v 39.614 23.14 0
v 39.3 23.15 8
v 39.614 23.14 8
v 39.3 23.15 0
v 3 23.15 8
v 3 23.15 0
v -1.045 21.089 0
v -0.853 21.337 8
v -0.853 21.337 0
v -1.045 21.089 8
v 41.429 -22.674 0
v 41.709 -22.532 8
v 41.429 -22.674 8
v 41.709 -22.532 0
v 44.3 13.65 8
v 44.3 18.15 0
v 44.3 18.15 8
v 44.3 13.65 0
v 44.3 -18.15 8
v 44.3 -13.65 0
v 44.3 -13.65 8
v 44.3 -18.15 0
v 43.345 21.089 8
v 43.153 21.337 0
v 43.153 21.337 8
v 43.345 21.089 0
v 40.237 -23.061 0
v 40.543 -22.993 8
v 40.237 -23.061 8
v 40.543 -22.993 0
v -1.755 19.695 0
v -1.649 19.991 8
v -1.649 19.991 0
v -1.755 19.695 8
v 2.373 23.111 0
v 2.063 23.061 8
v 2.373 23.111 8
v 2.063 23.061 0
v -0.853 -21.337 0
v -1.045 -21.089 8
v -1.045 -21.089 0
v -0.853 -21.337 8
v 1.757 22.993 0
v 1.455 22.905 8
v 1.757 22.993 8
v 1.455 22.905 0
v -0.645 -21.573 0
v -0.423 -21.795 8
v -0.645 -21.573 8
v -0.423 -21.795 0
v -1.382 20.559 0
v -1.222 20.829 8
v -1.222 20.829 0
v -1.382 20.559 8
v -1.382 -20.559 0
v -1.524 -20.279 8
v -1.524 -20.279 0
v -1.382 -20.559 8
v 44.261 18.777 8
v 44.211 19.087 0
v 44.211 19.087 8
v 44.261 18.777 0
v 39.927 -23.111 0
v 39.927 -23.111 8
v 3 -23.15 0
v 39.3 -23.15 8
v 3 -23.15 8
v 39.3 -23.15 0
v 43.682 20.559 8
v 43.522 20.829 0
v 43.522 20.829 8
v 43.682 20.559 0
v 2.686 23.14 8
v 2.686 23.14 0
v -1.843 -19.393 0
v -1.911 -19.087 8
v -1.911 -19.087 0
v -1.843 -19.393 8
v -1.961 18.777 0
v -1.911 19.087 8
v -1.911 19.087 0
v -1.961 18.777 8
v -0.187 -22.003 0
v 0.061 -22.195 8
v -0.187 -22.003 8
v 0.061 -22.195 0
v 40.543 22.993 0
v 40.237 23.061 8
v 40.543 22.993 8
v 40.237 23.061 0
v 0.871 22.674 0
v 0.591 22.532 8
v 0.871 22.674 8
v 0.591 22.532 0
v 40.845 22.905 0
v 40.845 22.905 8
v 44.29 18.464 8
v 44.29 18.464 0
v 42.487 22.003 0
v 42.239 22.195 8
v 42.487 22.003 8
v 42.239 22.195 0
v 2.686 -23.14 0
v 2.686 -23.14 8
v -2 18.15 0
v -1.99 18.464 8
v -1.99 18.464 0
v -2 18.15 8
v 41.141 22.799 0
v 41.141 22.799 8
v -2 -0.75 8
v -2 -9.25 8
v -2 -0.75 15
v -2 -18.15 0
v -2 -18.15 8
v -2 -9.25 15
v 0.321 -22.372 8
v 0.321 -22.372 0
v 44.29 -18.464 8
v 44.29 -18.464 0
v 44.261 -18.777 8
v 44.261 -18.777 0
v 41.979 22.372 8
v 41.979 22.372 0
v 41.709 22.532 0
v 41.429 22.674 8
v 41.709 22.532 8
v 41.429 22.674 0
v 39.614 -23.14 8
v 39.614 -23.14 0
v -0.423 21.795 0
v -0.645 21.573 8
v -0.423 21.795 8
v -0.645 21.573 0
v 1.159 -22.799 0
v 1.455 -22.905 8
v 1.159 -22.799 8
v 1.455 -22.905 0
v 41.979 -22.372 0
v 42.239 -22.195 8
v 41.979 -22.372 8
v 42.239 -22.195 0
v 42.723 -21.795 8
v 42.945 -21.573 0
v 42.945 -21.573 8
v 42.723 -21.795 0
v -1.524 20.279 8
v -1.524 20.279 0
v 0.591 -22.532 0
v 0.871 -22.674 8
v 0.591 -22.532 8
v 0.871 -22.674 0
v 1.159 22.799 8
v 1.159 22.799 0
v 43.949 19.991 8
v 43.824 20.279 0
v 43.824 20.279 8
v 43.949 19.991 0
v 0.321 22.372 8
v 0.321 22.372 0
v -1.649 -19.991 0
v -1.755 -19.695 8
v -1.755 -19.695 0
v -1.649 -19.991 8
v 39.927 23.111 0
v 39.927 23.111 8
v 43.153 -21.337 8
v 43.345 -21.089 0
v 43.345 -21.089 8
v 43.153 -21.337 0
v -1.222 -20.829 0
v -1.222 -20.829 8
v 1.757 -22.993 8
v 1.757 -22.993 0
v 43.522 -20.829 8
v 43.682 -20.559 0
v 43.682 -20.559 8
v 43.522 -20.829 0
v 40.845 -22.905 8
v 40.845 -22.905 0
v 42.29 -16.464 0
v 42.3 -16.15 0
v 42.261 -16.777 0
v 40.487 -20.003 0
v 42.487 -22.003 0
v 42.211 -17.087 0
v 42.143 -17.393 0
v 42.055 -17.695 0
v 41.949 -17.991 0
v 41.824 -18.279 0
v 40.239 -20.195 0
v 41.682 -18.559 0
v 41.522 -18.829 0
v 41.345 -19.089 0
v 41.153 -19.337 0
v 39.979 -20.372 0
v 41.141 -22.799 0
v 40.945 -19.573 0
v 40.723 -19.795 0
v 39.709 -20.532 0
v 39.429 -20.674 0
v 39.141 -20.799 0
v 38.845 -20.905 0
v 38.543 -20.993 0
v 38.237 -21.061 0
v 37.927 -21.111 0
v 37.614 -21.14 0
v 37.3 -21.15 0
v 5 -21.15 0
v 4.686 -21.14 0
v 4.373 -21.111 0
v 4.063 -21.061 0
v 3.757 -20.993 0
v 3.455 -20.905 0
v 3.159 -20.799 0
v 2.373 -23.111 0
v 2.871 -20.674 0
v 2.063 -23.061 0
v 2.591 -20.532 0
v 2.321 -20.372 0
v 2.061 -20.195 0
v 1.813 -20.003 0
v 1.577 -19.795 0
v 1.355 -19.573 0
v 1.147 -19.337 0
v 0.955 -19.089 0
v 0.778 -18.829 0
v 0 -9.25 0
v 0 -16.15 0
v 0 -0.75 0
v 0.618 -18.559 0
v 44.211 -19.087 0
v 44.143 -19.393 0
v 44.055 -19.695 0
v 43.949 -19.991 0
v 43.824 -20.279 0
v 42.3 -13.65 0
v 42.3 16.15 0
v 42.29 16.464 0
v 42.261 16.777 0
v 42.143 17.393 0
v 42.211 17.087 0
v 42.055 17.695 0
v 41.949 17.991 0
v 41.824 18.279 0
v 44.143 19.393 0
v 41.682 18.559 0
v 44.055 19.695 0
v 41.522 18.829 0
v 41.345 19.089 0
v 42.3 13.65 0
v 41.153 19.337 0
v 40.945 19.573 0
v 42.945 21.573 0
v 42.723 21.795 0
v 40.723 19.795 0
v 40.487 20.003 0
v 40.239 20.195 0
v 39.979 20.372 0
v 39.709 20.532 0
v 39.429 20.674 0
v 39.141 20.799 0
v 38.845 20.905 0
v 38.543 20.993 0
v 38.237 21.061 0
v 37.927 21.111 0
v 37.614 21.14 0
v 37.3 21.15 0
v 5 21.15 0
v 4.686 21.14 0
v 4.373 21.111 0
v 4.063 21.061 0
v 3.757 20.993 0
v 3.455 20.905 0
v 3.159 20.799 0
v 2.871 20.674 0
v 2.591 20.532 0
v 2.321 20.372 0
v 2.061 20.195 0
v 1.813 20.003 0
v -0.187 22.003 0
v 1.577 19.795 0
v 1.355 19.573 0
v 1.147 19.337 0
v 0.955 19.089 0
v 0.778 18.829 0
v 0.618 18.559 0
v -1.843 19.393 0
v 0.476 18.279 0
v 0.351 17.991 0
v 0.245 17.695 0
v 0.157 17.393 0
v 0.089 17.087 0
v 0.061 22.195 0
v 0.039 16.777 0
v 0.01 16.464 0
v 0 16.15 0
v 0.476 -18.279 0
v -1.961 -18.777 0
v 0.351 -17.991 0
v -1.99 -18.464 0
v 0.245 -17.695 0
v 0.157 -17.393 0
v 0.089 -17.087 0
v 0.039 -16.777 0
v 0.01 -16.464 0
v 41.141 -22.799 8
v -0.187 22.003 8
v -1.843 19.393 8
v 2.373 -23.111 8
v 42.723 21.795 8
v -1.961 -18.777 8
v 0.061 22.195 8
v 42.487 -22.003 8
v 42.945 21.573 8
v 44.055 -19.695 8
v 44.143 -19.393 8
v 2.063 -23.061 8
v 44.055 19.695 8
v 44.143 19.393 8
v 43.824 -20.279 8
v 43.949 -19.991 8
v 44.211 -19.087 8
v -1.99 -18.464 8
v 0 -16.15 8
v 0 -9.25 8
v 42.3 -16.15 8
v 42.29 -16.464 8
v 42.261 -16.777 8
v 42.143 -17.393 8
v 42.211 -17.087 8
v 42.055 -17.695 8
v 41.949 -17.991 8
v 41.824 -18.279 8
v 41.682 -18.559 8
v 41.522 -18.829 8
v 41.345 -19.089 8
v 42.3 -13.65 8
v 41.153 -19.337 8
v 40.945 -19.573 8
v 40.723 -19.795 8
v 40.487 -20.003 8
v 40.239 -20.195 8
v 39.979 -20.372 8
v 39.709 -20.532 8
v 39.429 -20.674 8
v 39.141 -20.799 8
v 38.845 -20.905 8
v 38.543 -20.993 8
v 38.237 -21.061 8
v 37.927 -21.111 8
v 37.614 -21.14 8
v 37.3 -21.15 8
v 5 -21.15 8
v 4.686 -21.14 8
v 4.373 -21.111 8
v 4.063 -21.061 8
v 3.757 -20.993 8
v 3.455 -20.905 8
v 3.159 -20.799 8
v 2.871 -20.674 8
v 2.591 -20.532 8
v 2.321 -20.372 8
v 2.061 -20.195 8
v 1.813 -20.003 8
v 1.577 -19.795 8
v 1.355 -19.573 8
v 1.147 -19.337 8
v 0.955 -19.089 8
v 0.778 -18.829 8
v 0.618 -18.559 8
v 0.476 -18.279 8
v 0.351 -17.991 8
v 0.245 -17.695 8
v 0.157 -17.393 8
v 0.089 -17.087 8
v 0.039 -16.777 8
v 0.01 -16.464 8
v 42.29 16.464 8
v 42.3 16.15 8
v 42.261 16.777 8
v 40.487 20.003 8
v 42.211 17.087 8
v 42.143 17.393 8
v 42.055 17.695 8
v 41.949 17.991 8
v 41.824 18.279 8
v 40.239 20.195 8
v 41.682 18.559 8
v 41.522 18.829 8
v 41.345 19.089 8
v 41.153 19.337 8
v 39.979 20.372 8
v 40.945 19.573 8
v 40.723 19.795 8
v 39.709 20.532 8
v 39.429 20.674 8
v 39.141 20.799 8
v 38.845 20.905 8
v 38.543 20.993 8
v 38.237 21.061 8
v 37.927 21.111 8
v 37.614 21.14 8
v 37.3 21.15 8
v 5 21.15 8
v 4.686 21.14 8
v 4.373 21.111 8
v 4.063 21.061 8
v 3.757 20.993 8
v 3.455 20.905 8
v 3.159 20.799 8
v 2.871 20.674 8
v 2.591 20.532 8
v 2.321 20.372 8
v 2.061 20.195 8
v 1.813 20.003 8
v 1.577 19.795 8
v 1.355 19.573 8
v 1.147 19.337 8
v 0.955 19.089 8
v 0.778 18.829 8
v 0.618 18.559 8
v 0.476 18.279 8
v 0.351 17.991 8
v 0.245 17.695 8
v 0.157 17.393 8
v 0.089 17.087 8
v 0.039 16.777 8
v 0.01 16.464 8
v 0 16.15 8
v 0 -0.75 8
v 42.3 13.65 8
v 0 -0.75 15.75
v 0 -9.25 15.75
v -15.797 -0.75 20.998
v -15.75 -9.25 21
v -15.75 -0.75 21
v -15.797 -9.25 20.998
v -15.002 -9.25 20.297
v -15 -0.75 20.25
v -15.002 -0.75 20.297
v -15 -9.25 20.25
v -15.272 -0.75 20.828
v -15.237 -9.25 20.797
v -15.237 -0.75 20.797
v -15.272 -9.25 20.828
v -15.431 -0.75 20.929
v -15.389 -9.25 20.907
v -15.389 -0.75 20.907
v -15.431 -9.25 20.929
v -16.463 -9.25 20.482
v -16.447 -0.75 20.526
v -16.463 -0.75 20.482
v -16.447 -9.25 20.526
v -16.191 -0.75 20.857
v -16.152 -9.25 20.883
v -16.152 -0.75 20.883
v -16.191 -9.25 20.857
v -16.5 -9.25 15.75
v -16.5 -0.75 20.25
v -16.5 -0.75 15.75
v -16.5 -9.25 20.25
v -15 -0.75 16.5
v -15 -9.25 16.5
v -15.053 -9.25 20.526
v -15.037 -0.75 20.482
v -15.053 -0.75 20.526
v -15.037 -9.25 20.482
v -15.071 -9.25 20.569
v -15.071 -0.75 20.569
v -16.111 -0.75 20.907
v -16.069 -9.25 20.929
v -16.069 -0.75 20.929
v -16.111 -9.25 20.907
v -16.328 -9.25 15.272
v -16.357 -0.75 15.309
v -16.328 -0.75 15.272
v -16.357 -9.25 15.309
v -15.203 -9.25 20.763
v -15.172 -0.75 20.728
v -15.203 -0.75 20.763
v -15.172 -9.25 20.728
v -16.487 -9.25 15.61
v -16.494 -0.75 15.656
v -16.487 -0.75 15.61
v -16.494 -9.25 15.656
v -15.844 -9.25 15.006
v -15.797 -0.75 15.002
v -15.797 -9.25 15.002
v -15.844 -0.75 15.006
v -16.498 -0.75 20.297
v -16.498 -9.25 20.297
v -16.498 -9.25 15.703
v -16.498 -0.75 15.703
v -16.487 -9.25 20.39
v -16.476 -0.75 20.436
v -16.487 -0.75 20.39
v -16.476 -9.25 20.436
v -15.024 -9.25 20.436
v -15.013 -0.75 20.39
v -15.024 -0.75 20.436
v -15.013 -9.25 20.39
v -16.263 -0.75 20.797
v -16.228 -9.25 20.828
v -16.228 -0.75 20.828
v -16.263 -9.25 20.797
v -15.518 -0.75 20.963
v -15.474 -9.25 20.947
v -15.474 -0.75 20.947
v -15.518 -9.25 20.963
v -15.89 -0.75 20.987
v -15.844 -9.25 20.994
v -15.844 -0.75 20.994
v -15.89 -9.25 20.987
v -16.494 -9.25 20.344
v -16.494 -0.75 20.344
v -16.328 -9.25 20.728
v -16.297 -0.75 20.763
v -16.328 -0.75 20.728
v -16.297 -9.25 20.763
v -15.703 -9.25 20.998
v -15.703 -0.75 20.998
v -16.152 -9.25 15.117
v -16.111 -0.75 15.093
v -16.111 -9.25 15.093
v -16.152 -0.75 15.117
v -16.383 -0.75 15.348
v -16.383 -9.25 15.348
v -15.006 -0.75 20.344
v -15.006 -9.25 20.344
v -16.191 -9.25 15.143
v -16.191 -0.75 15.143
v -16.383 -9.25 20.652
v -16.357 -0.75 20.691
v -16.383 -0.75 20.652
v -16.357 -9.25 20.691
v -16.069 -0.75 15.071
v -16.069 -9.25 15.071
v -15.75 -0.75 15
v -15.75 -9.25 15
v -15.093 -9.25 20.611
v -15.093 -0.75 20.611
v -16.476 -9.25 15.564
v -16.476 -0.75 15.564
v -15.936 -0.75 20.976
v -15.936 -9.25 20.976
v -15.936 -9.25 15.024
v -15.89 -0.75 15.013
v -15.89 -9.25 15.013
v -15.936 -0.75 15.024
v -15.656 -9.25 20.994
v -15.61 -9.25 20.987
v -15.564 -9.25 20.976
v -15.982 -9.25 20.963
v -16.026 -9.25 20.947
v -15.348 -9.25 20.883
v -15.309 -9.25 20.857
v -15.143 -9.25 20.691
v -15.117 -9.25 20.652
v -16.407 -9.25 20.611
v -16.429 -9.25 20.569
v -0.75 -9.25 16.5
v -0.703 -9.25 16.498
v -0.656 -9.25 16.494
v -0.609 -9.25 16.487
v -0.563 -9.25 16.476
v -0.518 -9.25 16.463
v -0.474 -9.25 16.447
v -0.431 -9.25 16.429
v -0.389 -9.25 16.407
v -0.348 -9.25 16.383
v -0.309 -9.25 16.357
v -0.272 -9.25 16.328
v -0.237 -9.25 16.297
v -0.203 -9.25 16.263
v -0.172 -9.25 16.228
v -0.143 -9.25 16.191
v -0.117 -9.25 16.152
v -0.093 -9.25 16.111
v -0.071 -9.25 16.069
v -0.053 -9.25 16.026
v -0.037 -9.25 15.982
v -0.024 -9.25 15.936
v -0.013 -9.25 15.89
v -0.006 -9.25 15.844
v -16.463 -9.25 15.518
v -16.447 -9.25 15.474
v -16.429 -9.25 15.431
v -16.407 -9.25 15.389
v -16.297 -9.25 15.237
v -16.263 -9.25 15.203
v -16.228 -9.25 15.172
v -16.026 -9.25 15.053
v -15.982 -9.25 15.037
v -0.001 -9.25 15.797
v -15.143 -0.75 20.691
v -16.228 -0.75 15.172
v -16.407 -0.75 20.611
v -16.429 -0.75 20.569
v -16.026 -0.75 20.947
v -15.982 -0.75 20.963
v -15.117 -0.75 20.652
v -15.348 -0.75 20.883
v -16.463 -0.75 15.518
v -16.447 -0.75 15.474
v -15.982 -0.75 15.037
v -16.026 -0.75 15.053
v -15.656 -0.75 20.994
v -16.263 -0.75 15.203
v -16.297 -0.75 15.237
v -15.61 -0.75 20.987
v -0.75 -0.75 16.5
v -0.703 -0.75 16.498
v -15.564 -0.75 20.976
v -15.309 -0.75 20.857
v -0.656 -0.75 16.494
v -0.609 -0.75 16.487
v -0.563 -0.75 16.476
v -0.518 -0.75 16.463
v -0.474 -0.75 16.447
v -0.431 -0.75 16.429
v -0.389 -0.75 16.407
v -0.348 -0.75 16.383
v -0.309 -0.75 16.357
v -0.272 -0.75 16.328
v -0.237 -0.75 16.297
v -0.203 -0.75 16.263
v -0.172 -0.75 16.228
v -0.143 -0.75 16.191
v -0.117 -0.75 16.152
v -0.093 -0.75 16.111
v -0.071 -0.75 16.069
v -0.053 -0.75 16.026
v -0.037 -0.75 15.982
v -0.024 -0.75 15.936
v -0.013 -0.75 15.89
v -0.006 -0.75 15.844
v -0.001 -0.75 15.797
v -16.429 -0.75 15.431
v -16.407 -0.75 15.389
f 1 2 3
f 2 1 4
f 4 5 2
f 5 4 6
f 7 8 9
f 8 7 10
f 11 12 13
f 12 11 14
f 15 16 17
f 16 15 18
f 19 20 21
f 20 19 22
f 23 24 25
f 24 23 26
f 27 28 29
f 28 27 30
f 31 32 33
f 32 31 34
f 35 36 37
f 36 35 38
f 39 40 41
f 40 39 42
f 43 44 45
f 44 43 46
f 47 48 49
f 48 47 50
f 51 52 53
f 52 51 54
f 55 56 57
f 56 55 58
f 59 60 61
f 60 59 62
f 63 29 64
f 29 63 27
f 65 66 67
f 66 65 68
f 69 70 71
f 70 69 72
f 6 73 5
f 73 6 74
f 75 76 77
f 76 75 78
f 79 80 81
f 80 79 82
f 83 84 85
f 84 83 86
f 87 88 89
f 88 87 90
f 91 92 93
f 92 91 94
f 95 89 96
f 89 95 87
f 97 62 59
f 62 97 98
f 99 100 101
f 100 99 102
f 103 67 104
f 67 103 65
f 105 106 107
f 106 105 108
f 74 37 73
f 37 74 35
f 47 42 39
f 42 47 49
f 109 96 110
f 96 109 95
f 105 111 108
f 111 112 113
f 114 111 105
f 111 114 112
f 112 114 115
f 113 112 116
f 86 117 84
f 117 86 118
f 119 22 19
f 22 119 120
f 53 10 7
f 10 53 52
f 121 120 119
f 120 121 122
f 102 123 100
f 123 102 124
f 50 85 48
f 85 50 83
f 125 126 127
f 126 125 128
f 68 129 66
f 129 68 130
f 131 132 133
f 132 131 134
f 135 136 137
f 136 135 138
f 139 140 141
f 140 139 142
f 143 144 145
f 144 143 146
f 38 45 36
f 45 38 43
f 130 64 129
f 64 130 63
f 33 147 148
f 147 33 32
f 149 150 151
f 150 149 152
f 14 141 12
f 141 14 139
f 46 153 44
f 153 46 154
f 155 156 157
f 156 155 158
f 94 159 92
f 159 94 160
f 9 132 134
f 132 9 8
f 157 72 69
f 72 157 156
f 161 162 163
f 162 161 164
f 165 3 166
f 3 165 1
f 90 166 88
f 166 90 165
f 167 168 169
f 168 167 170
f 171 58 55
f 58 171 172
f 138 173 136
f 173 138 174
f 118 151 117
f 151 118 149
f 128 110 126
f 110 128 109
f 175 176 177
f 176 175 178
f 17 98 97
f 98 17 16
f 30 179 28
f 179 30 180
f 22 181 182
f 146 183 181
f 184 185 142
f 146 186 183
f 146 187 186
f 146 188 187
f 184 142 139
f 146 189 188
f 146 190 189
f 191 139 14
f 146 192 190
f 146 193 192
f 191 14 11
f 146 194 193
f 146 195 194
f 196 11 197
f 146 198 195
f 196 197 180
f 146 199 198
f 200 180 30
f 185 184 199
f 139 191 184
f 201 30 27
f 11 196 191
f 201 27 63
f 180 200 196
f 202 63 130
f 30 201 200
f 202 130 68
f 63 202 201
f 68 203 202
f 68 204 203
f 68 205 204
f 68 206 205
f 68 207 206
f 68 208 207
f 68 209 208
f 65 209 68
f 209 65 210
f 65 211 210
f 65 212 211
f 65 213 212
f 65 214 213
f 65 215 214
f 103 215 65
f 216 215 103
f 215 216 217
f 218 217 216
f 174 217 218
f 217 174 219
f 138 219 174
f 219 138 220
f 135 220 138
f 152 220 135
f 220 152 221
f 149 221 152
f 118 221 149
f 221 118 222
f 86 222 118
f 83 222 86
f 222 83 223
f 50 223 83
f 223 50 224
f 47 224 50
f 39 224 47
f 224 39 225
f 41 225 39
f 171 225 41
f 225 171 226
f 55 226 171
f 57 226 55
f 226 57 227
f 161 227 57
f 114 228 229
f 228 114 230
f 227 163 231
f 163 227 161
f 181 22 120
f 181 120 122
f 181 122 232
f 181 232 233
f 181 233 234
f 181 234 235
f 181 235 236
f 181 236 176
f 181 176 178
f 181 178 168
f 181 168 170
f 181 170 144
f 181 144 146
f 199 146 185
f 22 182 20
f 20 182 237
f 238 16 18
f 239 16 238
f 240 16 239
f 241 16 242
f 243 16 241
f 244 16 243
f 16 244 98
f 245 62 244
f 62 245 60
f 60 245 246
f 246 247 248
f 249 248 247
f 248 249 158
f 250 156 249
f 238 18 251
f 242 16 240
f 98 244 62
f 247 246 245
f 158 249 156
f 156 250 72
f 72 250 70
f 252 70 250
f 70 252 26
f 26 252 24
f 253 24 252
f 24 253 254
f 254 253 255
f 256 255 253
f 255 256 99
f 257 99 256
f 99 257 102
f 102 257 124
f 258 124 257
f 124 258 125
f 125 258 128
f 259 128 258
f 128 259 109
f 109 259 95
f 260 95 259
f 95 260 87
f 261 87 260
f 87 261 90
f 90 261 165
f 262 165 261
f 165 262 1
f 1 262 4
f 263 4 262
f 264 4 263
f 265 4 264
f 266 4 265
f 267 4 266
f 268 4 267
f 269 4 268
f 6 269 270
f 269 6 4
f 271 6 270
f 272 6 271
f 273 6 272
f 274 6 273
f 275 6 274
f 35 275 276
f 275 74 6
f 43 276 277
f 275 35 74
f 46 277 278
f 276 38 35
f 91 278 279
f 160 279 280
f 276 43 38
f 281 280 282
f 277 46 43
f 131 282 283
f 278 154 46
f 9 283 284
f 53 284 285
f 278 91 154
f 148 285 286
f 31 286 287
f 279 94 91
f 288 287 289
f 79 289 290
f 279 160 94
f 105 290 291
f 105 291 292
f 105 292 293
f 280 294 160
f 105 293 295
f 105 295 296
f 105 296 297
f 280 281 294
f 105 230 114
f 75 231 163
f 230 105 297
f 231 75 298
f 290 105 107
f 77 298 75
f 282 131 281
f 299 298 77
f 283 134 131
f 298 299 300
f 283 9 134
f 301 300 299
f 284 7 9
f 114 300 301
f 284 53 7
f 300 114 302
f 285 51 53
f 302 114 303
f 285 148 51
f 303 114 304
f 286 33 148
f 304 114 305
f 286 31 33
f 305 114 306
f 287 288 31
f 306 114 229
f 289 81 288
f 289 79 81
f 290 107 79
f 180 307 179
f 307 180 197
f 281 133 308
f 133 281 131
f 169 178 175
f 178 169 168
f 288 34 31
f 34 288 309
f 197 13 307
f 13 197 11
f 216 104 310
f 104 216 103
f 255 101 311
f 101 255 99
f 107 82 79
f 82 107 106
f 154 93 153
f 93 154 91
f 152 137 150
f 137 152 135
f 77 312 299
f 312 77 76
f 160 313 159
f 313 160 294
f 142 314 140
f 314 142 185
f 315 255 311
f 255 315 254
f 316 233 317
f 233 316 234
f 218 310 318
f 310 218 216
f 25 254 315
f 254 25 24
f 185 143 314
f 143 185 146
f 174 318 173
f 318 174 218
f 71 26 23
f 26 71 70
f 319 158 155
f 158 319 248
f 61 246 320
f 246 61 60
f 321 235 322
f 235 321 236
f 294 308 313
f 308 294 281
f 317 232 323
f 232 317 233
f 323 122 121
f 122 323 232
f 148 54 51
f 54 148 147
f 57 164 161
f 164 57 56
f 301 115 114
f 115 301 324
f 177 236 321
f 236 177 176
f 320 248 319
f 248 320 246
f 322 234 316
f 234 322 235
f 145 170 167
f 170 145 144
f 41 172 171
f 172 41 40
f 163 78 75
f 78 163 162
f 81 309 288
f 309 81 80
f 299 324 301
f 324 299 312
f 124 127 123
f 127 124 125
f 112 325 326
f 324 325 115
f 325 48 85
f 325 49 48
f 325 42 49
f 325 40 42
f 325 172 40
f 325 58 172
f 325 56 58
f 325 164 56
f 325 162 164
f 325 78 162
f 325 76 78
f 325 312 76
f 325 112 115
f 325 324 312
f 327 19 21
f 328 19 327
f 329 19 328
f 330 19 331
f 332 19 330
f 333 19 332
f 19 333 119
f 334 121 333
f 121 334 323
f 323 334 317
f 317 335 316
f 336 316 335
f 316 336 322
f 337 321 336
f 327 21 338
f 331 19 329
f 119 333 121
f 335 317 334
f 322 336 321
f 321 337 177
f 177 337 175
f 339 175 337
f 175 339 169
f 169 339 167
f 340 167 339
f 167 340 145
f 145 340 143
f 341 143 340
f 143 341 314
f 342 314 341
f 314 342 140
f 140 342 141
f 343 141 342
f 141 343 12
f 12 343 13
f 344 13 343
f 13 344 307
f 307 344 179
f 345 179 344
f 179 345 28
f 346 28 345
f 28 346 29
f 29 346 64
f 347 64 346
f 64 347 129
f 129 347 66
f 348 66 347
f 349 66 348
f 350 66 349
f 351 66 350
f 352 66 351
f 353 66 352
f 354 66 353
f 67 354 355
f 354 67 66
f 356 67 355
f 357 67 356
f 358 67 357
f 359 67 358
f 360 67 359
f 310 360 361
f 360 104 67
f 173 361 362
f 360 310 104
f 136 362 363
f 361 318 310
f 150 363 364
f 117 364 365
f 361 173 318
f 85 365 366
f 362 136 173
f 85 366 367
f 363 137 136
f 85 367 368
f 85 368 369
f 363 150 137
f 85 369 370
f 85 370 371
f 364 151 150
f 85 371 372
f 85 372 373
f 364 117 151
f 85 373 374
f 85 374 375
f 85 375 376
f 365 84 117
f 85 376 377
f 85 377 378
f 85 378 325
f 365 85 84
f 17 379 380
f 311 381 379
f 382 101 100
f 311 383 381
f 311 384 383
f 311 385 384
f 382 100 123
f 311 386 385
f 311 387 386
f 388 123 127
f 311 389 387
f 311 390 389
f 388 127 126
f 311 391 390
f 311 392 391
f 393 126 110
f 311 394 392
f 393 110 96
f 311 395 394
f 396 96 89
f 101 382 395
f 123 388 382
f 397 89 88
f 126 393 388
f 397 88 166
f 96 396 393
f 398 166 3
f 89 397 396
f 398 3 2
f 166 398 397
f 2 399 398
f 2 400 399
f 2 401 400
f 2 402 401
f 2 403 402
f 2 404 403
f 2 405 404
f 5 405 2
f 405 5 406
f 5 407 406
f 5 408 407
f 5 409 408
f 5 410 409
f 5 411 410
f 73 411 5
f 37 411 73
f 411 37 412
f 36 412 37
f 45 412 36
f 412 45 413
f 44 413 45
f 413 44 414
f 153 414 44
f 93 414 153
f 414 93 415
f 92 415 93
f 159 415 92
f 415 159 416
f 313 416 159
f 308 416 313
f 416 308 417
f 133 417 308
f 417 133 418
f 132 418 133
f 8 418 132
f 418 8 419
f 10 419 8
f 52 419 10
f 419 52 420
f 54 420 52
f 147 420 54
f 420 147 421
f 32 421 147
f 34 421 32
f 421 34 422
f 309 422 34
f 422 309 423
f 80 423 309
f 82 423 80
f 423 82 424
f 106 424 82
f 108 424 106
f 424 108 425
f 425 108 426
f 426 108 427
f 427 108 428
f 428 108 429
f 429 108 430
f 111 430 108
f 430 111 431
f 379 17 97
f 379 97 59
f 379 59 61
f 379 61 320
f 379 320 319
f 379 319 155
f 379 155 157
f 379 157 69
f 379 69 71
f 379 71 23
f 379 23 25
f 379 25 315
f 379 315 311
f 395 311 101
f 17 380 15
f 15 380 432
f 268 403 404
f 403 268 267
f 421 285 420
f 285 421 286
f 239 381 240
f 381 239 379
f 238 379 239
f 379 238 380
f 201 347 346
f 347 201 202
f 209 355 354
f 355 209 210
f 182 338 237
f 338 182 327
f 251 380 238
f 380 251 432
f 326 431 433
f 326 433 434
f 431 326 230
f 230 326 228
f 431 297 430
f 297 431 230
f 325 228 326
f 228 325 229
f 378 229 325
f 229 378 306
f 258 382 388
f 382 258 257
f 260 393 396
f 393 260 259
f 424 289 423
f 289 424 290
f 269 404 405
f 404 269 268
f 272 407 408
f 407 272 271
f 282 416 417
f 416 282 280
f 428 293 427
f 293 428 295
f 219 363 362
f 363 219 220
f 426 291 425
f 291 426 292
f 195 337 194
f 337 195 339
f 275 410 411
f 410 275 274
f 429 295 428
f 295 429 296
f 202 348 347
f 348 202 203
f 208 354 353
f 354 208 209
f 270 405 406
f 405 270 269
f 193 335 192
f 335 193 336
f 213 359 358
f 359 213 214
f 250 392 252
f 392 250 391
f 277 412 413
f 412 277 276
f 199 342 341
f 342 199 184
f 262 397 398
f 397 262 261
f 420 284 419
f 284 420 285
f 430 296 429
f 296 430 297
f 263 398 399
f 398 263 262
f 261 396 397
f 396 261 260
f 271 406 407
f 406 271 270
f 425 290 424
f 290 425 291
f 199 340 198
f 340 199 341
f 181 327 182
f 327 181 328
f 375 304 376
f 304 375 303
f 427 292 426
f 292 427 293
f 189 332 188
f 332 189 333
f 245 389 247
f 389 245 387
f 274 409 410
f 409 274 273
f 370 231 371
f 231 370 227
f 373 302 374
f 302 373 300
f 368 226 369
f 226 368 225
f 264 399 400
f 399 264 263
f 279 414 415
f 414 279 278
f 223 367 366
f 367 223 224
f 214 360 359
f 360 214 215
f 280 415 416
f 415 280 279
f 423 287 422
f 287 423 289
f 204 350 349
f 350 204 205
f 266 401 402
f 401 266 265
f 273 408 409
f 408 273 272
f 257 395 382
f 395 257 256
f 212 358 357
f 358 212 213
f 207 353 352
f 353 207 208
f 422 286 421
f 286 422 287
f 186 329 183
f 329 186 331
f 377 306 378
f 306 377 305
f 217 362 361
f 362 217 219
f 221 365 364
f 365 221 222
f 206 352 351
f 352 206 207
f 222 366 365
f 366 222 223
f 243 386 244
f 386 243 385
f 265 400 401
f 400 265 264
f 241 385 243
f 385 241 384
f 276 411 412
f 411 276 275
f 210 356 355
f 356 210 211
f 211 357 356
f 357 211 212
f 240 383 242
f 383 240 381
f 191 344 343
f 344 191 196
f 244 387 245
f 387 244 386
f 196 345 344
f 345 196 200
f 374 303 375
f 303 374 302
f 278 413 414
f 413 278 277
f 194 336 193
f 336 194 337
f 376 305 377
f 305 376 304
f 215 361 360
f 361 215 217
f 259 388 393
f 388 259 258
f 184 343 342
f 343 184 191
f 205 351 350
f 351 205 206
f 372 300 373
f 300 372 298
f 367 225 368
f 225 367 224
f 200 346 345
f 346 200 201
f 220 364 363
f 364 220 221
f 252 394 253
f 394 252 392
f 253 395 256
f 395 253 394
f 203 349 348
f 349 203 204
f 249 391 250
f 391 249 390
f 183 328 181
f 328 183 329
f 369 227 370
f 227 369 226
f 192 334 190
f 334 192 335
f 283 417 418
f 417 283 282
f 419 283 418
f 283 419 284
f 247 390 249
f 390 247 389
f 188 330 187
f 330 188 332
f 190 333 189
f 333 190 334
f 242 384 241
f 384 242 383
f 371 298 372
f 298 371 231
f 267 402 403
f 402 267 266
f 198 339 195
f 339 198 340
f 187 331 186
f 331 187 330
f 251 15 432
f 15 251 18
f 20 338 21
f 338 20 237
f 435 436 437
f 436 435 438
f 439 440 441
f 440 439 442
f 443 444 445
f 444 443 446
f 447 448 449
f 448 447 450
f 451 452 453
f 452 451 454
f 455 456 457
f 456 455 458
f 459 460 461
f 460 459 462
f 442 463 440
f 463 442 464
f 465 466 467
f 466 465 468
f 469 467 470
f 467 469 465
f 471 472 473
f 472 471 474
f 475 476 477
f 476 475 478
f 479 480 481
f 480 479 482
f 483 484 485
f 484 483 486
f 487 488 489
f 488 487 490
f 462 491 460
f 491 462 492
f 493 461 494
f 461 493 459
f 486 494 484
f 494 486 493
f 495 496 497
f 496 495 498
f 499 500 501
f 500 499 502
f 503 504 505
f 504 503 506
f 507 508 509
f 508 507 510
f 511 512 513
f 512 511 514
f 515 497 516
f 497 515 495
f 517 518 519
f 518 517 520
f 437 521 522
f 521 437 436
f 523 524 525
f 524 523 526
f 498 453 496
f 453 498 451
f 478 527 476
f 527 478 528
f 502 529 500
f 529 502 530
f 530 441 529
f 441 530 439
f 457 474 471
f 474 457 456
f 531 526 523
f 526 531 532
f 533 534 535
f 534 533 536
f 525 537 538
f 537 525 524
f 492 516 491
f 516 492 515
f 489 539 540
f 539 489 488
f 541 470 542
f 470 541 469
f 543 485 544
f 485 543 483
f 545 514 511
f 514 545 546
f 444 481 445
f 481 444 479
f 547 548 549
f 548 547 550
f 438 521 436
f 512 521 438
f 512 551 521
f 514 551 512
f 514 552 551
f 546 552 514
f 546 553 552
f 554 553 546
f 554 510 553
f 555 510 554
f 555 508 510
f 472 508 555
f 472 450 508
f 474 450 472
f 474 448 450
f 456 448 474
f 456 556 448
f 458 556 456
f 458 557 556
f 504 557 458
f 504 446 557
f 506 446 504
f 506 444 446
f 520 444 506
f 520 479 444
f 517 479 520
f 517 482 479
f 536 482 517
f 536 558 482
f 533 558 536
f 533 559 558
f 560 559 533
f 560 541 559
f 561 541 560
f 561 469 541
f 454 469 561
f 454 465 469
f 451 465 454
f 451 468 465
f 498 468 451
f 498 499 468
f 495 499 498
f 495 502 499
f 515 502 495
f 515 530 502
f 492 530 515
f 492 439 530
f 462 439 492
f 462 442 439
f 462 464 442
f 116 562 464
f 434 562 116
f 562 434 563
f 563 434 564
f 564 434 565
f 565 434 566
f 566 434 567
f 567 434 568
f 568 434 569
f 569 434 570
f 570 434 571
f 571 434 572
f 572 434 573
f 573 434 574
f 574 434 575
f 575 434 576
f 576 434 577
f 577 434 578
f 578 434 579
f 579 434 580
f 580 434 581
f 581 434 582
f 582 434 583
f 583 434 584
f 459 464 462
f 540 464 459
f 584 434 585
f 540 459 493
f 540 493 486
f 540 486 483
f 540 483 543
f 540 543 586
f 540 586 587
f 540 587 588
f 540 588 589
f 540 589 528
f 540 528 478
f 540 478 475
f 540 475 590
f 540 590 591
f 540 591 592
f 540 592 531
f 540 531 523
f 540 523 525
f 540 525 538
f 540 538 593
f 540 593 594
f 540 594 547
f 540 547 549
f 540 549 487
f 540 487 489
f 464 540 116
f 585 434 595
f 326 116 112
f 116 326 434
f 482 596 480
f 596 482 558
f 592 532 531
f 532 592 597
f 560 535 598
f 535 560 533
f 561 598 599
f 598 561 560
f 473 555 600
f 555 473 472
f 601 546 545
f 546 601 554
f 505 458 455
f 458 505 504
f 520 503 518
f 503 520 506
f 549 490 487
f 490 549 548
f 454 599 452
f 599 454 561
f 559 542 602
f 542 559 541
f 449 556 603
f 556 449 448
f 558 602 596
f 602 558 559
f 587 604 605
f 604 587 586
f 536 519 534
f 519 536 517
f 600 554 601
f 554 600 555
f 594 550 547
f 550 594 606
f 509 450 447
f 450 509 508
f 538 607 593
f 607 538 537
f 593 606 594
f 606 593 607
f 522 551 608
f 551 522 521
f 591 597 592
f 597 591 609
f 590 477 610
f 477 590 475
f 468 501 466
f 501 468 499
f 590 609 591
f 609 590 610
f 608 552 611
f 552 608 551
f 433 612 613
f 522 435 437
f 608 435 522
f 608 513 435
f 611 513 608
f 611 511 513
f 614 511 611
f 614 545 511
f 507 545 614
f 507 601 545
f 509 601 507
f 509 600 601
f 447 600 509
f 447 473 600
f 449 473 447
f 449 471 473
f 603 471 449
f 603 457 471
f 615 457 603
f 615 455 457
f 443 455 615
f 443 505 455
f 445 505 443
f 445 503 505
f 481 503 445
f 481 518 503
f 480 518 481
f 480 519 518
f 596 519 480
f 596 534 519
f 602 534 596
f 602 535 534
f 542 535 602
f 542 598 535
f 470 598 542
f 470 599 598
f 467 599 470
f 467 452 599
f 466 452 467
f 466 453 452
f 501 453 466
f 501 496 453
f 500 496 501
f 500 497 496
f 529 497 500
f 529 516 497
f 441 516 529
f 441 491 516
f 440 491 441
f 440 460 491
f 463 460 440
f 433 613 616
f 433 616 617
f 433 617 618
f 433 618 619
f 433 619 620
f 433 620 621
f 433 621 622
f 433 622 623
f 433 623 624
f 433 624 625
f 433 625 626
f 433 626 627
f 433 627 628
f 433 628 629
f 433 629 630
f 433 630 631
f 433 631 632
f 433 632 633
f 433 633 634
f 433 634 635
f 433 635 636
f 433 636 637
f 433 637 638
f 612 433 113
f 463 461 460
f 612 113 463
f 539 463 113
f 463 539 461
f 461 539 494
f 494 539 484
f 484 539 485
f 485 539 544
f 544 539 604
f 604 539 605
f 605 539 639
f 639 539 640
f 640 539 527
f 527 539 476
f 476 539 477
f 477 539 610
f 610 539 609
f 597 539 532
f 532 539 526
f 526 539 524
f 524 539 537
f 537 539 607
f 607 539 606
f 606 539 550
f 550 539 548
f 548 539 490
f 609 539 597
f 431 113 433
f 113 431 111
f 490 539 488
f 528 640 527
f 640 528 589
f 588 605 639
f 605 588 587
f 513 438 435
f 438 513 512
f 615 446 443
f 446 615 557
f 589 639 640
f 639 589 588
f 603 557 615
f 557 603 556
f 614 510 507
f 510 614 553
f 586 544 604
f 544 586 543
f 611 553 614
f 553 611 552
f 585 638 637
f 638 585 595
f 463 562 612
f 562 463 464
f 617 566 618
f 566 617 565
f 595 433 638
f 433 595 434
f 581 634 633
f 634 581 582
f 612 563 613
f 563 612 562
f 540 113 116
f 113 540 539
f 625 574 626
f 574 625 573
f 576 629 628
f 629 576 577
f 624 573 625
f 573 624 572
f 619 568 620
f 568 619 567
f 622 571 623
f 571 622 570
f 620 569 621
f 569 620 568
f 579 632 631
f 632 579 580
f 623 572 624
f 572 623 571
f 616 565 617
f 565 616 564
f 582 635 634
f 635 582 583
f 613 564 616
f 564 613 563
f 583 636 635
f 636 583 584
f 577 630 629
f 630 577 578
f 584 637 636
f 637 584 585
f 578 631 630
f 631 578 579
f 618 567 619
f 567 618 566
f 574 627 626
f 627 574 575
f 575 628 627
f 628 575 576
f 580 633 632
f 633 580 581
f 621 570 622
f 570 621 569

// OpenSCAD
/*
    Filament Sensor Mounting Clip For Cocoon Create
    By Brian Khuu 2019
    
    This is for a cheap filament sensor, that you can usually find on ebay.
    
*/
$fn=100;

/*
# Filament Sensor Mount
[<====y====>]
        [ ^ ]
        [ | ]
        [ x ]
        [ | ]
        [ V ]
*/
filament_mount_y_length=6;
filament_mount_x_length=5;
filament_mount_y_offset=20;
filament_mount_x_offset=40;
filament_mount_width=8.5;
filament_mount_thickness=1.5;


// NEMA17 clip
// Rounded by 5mm
NEMA_dia=42.3;
NEMA_clip_round=5; // Adjust based on motor indentation
NEMA_clip_width=8;
NEMA_clip_thickness=2;

NEMA_mount_offset_h=10;
NEMA_mount_offset_length=15;
NEMA_mount_offset_sideway=-5;

module rcube(size, radius) 
{
    /* https://blog.prusaprinters.org/parametric-design-in-openscad/ */
    hull() 
    {
        // BL
        if(radius[0] == 0) cube([1, 1, size[2]]);
        else translate([radius[0], radius[0]]) cylinder(r = radius[0], h = size[2]);
        // BR
        if(radius[1] == 0) translate([size[0] - 1, 0]) cube([1, 1, size[2]]);
        else translate([size[0] - radius[1], radius[1]]) cylinder(r = radius[1], h = size[2]);
        // TR
        if(radius[2] == 0) translate([size[0] - 1, size[1] - 1])cube([1, 1, size[2]]);
        else translate([size[0] - radius[2], size[1] - radius[2]]) cylinder(r = radius[2], h = size[2]);
        // TL
        if(radius[3] == 0) translate([0, size[1] - 1]) cube([1, 1, size[2]]);
        else translate([radius[3], size[1] - radius[3]]) cylinder(r = radius[3], h = size[2]);
    }
}


module filament_sensor_mount(xextra, yextra)
{
    /* Mount */
    translate([-filament_mount_x_length-xextra,0,0])
    union()
    {
        translate([0,-yextra,0])
        union()
        {
            hull()
            {
                translate([0,0,0])
                    cylinder(r=filament_mount_thickness/2, h=filament_mount_width);
                translate([0,-filament_mount_y_length+filament_mount_thickness,0])
                    cylinder(r=filament_mount_thickness/2, h=filament_mount_width);
            }
            hull()
            {
                translate([0,0,0])
                    cylinder(r=filament_mount_thickness/2, h=filament_mount_width);
                translate([filament_mount_x_length+xextra,0,0])
                    cylinder(r=filament_mount_thickness/2, h=filament_mount_width);
            }
        }

        hull()
        {
            translate([filament_mount_x_length+xextra,0,0])
                cylinder(r=filament_mount_thickness/2, h=filament_mount_width);
            translate([filament_mount_x_length+xextra,-yextra,0])
                cylinder(r=filament_mount_thickness/2, h=filament_mount_width);
        }
    }
}


module NEMA_Clip()
{
    difference()
    {
        // NEMA Clip
        translate([-NEMA_clip_thickness,-NEMA_dia/2-NEMA_clip_thickness,0])
            rcube([NEMA_dia+(NEMA_clip_thickness*2),NEMA_dia+(NEMA_clip_thickness*2),NEMA_clip_width],[NEMA_clip_round,NEMA_clip_round,NEMA_clip_round,NEMA_clip_round]);
        
        // NEMA Bulk
        translate([0,-NEMA_dia/2,-5])
            rcube([NEMA_dia,NEMA_dia,NEMA_clip_width+10],[NEMA_clip_round,NEMA_clip_round,NEMA_clip_round,NEMA_clip_round]);

        // Cut
        cutlength=NEMA_dia-15;
        translate([NEMA_dia-(NEMA_clip_thickness*3)/2,-cutlength/2,-5])
            cube([NEMA_clip_thickness*3,cutlength,NEMA_clip_width+10]);
    }
}

// NEMA to Filament Sensor Clip
union()
{
    translate([0,NEMA_mount_offset_sideway,0])
    union()
    {
        translate([-filament_mount_thickness/2,-filament_mount_width/2,filament_mount_thickness/2])
            rotate([-90,0,0])
                filament_sensor_mount(NEMA_mount_offset_h, NEMA_mount_offset_length);

        translate([-NEMA_clip_thickness,-filament_mount_width/2])
            cube([NEMA_clip_thickness,filament_mount_width,NEMA_mount_offset_length]);
    }

    NEMA_Clip();
}
